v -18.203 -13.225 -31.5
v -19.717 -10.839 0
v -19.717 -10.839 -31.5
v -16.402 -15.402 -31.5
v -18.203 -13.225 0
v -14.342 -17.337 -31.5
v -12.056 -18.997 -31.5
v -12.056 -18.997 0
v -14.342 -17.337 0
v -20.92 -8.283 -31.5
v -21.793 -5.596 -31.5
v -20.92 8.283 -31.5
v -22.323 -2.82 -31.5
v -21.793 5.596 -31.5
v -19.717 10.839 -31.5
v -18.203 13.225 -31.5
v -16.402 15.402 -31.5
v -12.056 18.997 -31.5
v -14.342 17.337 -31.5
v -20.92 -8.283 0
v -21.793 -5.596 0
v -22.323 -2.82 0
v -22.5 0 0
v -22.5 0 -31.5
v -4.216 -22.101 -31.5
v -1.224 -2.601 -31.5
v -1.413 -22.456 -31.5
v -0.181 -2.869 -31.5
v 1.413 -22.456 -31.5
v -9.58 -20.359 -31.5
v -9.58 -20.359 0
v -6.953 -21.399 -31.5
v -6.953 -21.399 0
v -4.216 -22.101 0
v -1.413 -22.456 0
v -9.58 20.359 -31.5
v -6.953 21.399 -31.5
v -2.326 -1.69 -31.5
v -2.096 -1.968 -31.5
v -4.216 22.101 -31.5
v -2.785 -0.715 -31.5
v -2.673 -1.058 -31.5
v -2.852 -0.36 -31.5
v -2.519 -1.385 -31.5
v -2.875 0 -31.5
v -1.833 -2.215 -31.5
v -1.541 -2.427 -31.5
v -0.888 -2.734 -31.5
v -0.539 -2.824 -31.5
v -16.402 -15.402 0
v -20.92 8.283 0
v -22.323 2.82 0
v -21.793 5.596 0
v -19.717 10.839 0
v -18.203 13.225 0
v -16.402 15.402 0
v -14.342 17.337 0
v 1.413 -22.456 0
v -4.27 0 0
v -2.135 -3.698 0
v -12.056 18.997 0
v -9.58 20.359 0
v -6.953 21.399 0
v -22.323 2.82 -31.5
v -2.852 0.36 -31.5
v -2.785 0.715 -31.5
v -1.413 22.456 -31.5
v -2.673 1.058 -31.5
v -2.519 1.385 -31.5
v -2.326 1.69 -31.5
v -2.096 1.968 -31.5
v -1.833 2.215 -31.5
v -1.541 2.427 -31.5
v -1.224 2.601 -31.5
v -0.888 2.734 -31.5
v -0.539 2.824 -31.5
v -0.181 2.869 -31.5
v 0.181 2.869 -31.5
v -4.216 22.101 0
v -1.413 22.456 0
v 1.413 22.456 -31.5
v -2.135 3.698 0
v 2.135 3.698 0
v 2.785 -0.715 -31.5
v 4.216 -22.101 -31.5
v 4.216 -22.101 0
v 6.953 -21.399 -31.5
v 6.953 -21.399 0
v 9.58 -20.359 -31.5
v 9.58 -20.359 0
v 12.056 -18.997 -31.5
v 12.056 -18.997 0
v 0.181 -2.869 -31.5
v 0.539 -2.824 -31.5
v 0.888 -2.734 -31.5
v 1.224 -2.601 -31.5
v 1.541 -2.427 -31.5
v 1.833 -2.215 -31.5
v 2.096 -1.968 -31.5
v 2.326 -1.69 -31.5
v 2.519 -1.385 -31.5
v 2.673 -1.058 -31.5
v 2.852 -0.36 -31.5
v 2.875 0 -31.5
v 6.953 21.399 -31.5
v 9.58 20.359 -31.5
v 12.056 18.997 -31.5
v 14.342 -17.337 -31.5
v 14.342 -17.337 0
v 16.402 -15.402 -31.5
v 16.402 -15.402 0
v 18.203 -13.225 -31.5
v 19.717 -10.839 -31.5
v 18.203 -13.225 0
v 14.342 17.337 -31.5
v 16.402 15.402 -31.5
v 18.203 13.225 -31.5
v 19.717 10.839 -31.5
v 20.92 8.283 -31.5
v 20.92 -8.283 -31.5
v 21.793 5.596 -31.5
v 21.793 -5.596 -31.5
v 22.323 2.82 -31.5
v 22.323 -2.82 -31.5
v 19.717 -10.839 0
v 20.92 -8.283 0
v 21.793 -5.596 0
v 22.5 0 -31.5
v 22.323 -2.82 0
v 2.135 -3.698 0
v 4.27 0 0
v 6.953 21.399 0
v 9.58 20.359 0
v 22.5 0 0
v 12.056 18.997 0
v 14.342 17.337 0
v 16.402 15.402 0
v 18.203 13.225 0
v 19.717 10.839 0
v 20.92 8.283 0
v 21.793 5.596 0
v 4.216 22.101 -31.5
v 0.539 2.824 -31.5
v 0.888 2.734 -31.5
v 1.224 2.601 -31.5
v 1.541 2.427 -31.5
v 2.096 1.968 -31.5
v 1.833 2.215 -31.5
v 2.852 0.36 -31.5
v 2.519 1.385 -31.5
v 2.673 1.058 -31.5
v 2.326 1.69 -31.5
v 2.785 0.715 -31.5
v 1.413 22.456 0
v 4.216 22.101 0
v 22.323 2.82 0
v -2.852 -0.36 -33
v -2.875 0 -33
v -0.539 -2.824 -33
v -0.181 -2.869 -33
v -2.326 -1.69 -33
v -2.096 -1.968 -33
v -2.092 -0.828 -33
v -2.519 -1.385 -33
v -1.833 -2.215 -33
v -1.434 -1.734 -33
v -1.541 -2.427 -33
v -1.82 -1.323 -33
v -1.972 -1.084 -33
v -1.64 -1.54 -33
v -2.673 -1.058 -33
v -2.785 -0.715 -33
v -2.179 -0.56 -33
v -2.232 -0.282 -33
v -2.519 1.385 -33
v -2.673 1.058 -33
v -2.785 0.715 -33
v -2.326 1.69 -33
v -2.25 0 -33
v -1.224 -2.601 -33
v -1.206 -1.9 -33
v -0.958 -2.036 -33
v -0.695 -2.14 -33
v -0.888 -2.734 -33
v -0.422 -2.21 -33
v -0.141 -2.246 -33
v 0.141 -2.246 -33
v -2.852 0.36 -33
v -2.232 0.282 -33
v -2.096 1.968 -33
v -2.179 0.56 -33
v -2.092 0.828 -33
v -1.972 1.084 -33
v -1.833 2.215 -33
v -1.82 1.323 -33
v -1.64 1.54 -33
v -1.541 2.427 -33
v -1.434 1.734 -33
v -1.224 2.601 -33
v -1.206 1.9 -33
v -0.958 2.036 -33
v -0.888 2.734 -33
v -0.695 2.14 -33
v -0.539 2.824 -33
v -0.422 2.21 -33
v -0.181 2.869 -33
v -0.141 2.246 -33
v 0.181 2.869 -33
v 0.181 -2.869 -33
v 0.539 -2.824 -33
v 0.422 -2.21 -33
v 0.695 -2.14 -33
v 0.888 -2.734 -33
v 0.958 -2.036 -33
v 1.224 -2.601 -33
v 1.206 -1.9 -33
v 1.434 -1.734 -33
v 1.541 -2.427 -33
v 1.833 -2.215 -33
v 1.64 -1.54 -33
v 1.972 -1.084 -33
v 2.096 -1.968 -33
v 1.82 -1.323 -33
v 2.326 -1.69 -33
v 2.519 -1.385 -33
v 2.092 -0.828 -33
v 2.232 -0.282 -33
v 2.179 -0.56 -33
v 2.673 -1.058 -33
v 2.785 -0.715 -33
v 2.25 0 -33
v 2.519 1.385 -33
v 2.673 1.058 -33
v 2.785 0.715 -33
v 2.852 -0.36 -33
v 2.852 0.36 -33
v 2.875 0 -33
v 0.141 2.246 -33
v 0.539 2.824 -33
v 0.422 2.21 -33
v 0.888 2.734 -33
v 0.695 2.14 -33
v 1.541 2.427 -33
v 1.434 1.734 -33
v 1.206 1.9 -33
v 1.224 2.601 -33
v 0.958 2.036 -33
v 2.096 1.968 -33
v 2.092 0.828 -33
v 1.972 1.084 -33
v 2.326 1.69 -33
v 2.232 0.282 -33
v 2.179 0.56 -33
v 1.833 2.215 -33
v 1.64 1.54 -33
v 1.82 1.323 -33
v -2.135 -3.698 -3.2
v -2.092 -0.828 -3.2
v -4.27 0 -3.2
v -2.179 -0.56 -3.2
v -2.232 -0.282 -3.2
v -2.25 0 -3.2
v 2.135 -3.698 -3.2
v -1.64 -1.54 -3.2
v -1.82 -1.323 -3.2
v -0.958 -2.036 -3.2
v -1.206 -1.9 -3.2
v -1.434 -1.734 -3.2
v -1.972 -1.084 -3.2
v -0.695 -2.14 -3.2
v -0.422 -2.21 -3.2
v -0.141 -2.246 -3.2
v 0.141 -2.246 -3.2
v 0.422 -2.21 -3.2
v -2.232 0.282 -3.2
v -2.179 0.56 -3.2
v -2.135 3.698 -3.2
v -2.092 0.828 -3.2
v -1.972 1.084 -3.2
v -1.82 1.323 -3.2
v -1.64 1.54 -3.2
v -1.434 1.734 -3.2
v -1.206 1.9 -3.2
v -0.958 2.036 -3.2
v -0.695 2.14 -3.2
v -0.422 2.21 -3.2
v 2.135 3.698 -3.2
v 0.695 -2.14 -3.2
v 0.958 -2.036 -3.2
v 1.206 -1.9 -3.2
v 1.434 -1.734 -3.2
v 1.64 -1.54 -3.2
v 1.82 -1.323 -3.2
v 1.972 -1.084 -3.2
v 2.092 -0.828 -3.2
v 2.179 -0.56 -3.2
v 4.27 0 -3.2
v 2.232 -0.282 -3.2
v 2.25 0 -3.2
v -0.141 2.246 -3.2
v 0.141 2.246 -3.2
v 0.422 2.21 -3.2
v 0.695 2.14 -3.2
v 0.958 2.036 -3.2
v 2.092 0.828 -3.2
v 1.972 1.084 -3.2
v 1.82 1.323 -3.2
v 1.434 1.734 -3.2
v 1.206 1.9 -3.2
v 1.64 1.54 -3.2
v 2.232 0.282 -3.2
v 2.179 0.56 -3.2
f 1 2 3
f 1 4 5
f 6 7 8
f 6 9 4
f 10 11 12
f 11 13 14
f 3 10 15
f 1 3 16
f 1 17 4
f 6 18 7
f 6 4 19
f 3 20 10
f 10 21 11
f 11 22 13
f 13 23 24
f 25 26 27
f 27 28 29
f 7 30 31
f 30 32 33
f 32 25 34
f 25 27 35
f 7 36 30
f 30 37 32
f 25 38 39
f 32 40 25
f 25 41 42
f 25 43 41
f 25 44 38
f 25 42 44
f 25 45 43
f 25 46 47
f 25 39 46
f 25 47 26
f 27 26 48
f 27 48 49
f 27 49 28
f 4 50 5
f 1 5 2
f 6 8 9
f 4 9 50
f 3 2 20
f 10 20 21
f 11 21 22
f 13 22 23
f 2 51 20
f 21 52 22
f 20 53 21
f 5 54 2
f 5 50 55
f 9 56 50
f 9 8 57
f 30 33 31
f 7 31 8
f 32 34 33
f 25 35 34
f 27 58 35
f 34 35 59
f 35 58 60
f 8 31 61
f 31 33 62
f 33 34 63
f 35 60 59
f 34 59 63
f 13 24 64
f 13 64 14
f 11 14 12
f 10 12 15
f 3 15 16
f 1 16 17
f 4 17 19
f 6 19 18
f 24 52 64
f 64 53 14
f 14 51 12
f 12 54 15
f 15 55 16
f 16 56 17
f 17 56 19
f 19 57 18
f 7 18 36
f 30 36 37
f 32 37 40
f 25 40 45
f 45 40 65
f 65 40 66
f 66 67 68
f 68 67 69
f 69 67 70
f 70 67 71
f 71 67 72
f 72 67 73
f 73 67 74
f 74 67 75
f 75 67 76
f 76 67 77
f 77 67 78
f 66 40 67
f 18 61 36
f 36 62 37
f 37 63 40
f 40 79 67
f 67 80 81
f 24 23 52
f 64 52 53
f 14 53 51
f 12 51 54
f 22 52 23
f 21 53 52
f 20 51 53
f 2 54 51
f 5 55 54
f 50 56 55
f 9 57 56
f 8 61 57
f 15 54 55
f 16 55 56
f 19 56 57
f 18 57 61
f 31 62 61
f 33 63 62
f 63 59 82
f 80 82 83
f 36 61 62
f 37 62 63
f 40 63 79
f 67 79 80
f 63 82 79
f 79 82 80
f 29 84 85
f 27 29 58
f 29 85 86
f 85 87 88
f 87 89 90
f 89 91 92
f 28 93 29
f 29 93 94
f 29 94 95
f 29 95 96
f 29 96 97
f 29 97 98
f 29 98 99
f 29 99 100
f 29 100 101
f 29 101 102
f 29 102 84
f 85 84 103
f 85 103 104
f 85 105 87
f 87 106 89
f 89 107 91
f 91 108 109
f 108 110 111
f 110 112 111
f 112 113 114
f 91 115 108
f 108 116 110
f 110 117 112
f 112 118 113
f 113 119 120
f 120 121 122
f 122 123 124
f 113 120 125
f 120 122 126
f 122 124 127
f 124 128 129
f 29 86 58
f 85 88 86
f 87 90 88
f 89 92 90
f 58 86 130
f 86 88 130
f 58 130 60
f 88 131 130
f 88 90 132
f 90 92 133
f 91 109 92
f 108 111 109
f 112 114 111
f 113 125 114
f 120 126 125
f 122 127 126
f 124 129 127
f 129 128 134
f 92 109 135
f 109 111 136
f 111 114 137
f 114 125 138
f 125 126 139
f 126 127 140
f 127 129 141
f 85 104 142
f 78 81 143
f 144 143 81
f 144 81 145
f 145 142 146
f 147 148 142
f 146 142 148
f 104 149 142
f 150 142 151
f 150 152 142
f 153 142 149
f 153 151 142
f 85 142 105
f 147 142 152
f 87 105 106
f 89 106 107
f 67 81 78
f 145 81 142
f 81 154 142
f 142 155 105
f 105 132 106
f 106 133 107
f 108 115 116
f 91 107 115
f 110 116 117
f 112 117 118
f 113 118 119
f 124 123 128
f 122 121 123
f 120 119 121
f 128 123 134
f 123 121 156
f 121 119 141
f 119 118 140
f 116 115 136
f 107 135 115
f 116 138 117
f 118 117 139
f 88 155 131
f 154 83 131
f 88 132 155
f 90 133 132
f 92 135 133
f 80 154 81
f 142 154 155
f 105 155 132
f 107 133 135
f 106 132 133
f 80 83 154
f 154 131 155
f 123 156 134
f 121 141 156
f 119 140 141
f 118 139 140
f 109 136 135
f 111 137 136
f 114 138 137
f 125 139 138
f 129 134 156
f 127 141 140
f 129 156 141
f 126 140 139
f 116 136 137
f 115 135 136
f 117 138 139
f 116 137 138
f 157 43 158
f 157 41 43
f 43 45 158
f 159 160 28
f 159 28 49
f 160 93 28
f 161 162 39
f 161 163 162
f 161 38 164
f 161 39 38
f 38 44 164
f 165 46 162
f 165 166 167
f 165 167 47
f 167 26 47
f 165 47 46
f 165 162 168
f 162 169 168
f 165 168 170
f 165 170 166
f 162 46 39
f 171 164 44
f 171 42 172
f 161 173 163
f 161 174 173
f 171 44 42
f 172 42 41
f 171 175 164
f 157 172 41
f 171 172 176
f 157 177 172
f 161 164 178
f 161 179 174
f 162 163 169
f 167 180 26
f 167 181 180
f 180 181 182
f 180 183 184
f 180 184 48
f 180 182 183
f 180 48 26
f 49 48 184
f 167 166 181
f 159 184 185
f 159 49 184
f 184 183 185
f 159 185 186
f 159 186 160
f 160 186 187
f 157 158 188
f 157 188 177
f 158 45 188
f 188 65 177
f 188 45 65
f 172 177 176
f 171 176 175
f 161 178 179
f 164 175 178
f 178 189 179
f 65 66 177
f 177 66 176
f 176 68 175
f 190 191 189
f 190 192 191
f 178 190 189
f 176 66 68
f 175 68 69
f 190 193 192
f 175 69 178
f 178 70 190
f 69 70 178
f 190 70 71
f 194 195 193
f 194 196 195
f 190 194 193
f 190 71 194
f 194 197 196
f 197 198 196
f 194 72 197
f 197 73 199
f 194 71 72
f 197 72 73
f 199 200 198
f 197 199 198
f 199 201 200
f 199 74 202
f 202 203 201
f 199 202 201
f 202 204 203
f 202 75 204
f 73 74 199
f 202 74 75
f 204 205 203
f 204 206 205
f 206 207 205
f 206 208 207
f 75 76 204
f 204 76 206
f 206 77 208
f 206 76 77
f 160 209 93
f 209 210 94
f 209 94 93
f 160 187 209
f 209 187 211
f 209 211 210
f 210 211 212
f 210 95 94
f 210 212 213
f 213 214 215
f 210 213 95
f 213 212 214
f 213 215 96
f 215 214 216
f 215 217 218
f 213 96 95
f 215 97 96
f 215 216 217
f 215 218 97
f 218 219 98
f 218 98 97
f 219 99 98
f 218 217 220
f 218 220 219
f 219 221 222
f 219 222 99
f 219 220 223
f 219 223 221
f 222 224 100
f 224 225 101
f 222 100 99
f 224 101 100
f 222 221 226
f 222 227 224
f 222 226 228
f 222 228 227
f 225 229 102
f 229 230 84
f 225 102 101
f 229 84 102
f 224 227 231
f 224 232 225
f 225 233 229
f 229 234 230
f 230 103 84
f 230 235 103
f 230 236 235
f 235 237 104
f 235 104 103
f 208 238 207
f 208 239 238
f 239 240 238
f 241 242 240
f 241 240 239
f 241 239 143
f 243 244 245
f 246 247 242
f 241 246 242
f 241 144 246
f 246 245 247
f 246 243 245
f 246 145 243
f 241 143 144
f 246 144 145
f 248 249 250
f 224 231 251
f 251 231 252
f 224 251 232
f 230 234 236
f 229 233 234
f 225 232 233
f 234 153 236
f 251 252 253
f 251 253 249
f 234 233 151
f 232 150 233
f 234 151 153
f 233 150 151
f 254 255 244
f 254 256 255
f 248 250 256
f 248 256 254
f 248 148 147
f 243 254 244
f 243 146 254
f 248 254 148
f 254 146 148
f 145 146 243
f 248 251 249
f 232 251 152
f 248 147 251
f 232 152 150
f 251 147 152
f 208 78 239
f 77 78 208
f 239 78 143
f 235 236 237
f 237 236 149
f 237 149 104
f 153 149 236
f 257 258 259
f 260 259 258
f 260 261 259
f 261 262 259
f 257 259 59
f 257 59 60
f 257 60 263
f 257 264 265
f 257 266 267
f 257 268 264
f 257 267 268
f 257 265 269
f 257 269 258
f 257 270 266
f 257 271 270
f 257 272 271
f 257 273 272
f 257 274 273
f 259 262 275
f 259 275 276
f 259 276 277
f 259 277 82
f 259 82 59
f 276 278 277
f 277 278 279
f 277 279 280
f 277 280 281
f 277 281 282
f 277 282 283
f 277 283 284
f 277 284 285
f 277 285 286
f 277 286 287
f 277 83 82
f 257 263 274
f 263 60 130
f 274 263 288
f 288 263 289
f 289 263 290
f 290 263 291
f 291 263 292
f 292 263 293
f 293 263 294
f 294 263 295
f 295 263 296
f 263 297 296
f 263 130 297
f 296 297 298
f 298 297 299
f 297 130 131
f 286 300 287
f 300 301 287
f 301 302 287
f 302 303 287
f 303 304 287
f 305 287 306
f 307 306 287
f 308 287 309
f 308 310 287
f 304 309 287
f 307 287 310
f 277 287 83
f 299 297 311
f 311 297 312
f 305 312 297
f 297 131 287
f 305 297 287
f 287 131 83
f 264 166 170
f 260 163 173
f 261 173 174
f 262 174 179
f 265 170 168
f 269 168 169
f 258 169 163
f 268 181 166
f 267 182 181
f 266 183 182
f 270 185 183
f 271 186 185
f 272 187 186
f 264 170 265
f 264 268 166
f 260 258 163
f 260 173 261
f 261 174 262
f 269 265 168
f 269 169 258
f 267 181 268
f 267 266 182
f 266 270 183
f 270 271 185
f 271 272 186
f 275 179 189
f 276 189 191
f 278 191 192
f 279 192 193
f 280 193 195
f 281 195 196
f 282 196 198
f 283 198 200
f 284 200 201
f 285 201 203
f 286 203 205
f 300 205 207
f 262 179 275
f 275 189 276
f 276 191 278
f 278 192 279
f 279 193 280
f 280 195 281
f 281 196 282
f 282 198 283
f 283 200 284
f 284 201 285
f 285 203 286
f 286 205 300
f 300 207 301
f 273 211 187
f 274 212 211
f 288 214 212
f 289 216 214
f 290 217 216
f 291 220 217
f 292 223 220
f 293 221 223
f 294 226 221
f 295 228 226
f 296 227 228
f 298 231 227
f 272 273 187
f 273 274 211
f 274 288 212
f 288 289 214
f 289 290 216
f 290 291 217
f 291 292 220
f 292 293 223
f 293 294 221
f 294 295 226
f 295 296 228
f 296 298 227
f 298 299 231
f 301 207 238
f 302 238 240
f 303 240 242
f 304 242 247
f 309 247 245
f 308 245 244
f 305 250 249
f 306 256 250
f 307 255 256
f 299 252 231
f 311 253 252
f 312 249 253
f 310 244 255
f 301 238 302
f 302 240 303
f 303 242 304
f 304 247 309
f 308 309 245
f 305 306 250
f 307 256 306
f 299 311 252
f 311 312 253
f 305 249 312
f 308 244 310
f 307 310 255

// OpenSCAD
$fn = 50;

difference() {
	union() {
		translate(v = [0, 0, -31.5]) {
			cylinder(h = 31.5, r = 22.5);
		}
		#translate(v = [0, 0, -33.0]) {
			cylinder(h = 33, r = 2.875);
		}
	}
	union() {
		translate(v = [0, 0, 0]) {
			rotate(a = [0, 0, 0]) {
				difference() {
					union() {
						translate(v = [0, 0, -3.2]) {
							linear_extrude(height = 3.2) {
								polygon(points = [[4.2698, 0.0], [2.1349000000000005, 3.697755269078796], [-2.134899999999999, 3.6977552690787965], [-4.2698, 5.228996902999369e-16], [-2.134900000000002, -3.6977552690787956], [2.1348999999999974, -3.697755269078798]]);
							}
						}
					}
					union();
				}
			}
		}
		#translate(v = [0, 0, -100.0]) {
			cylinder(h = 200, r = 2.25);
		}
	}
}
